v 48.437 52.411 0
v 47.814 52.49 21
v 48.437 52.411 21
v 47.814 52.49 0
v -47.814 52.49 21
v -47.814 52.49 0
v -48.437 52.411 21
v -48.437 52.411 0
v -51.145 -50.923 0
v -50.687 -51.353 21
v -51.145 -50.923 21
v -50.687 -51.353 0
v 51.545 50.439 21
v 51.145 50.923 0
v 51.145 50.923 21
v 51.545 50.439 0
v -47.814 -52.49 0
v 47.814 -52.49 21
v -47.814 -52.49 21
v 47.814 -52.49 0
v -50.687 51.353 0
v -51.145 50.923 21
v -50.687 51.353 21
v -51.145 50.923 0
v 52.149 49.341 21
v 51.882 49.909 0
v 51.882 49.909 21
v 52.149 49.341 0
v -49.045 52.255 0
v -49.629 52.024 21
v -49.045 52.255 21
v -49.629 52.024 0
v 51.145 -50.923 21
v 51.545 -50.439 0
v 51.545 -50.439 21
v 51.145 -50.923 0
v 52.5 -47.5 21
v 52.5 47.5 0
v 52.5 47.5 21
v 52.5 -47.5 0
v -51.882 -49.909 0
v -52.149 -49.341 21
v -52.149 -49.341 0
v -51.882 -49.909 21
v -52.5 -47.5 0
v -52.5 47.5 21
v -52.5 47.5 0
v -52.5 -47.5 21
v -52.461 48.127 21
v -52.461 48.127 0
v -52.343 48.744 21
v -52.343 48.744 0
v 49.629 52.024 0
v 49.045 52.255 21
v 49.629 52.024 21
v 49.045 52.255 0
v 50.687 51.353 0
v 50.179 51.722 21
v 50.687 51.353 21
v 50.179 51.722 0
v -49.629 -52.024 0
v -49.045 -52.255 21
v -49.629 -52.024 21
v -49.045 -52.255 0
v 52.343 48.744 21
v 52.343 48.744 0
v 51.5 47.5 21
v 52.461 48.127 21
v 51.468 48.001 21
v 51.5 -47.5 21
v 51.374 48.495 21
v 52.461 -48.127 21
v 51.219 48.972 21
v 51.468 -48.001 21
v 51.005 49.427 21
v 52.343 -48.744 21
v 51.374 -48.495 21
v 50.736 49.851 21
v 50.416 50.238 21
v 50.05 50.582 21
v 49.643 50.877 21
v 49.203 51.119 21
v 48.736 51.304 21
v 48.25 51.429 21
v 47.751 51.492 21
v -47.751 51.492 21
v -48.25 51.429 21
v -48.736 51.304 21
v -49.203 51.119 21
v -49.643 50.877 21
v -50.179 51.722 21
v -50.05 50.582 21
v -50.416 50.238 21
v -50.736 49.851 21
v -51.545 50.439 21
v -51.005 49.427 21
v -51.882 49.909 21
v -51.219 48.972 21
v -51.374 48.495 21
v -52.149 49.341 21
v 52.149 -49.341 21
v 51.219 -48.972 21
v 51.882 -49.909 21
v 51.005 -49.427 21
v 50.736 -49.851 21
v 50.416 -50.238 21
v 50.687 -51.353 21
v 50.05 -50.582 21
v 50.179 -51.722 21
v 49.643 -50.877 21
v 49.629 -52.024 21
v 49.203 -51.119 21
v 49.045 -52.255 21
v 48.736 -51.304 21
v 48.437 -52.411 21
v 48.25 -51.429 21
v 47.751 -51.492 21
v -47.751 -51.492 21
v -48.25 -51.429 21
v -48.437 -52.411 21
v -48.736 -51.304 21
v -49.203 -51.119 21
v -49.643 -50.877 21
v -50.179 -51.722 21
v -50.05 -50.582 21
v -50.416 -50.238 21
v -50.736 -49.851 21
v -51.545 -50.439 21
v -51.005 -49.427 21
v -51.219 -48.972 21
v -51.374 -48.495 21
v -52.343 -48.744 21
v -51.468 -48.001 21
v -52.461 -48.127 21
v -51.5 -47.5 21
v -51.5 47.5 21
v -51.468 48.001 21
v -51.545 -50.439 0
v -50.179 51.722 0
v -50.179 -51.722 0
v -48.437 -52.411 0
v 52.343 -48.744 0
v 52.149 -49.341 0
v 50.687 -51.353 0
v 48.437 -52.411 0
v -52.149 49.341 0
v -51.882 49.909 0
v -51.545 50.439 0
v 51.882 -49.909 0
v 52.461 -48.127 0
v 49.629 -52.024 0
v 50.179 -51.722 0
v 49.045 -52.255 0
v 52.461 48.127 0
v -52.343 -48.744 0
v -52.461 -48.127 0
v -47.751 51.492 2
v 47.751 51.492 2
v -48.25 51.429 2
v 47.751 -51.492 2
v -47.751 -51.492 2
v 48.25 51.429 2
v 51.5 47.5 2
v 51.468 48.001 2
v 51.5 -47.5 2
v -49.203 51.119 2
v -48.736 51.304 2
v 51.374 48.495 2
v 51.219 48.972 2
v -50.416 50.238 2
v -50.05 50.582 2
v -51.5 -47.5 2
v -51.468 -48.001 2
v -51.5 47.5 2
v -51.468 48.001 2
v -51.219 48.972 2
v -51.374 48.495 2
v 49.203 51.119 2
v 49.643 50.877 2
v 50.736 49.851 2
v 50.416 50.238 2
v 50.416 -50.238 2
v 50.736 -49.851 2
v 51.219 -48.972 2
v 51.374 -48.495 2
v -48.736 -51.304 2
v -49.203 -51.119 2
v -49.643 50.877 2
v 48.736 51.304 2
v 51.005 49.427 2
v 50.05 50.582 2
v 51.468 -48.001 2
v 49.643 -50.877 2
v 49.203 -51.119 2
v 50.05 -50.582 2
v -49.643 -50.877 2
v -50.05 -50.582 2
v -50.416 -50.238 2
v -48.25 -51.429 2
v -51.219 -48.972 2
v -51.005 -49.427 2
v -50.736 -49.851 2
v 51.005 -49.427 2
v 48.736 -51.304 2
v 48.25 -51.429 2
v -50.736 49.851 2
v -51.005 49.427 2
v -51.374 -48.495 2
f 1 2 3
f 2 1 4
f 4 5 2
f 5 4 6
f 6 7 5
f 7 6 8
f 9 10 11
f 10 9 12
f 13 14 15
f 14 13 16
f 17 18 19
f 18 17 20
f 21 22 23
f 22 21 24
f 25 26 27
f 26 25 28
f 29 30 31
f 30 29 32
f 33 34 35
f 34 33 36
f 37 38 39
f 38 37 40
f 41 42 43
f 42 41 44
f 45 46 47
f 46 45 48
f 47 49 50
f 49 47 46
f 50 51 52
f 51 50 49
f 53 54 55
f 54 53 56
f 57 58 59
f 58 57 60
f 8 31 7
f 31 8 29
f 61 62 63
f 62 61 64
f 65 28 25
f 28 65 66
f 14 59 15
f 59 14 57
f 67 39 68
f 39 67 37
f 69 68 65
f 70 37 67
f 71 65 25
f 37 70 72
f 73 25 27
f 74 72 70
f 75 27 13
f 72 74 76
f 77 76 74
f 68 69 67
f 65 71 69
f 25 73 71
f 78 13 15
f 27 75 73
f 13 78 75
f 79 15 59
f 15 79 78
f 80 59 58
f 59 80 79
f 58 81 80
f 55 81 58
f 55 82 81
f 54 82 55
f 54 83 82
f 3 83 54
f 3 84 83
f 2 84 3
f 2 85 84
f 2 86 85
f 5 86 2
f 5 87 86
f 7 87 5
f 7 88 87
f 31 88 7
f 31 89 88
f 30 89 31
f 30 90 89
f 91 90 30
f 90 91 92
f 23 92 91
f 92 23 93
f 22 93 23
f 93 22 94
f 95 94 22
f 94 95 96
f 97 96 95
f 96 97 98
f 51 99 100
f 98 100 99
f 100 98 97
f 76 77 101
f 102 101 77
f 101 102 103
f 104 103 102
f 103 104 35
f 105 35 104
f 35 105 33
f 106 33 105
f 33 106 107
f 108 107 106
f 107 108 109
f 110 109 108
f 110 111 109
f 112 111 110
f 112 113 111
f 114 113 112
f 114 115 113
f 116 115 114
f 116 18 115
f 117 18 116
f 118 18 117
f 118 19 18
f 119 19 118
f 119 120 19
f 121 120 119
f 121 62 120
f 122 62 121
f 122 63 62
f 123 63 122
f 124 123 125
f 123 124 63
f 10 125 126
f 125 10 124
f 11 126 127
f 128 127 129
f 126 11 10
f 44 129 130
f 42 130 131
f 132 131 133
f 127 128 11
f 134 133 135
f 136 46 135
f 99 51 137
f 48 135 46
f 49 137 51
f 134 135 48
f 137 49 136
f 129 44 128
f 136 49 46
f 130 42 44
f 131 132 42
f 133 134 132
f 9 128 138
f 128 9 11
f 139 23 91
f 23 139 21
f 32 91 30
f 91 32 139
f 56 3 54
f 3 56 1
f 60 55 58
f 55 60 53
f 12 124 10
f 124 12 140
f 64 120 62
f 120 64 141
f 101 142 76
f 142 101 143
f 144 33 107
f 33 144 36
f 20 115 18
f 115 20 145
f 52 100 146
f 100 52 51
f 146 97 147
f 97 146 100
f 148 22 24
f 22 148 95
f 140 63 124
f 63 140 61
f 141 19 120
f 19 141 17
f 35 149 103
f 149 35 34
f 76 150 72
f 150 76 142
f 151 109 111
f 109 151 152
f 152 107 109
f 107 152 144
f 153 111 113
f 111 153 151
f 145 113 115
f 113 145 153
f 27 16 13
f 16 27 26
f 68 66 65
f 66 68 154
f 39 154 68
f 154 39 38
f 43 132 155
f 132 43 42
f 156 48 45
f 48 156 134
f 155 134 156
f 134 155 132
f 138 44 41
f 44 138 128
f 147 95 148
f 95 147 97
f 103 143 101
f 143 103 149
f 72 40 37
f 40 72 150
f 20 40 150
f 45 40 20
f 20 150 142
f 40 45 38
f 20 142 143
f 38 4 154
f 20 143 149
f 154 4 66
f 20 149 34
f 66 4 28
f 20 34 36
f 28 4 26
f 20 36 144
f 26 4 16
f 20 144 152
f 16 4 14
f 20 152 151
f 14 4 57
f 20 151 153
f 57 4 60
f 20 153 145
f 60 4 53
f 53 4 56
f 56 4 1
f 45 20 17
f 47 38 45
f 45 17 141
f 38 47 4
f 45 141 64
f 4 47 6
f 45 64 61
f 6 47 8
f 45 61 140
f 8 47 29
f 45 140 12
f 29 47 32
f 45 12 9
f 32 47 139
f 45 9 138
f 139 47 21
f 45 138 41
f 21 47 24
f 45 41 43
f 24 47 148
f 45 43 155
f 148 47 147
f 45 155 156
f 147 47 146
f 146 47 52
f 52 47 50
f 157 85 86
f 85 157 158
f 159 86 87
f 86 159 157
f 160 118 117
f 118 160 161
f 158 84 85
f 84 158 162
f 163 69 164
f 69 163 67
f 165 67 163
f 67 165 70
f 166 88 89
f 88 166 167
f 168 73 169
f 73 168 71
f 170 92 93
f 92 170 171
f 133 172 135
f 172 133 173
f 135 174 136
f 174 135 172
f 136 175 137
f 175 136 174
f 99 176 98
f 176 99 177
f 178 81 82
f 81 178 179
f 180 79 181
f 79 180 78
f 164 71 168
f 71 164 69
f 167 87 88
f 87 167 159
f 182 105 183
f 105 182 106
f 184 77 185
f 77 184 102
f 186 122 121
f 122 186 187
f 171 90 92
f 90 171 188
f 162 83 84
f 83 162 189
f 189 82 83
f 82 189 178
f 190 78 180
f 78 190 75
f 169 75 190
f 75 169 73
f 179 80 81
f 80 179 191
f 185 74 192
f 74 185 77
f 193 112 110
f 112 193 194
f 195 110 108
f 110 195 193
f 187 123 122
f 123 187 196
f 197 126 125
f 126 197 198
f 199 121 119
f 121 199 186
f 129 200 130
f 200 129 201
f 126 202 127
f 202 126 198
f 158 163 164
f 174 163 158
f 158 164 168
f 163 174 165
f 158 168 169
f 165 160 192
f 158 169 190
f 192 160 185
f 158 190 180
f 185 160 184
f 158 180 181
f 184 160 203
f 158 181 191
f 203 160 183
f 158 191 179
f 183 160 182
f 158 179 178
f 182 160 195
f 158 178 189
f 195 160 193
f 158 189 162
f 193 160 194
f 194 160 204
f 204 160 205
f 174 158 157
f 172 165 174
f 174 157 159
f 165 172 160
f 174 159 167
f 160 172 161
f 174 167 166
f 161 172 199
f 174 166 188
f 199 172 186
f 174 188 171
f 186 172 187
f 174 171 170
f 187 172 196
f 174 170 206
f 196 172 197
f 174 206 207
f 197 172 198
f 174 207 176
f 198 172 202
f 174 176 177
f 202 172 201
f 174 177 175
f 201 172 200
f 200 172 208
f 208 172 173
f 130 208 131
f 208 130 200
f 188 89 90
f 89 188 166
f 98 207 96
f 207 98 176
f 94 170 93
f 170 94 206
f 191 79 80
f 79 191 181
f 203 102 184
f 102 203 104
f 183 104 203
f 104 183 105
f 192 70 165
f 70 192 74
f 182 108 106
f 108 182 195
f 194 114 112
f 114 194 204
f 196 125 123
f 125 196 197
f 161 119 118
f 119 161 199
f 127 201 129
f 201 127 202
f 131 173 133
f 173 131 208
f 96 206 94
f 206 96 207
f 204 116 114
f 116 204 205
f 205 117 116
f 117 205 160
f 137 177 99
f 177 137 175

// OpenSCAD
$fn = 50;


difference() {
	union() {
		hull() {
			translate(v = [-47.5000000000, 47.5000000000, 0]) {
				cylinder(h = 21, r = 5);
			}
			translate(v = [47.5000000000, 47.5000000000, 0]) {
				cylinder(h = 21, r = 5);
			}
			translate(v = [-47.5000000000, -47.5000000000, 0]) {
				cylinder(h = 21, r = 5);
			}
			translate(v = [47.5000000000, -47.5000000000, 0]) {
				cylinder(h = 21, r = 5);
			}
		}
	}
	union() {
		translate(v = [0, 0, 2]) {
			hull() {
				translate(v = [-47.5000000000, 47.5000000000, 0]) {
					cylinder(h = 19, r = 4);
				}
				translate(v = [47.5000000000, 47.5000000000, 0]) {
					cylinder(h = 19, r = 4);
				}
				translate(v = [-47.5000000000, -47.5000000000, 0]) {
					cylinder(h = 19, r = 4);
				}
				translate(v = [47.5000000000, -47.5000000000, 0]) {
					cylinder(h = 19, r = 4);
				}
			}
		}
	}
}
